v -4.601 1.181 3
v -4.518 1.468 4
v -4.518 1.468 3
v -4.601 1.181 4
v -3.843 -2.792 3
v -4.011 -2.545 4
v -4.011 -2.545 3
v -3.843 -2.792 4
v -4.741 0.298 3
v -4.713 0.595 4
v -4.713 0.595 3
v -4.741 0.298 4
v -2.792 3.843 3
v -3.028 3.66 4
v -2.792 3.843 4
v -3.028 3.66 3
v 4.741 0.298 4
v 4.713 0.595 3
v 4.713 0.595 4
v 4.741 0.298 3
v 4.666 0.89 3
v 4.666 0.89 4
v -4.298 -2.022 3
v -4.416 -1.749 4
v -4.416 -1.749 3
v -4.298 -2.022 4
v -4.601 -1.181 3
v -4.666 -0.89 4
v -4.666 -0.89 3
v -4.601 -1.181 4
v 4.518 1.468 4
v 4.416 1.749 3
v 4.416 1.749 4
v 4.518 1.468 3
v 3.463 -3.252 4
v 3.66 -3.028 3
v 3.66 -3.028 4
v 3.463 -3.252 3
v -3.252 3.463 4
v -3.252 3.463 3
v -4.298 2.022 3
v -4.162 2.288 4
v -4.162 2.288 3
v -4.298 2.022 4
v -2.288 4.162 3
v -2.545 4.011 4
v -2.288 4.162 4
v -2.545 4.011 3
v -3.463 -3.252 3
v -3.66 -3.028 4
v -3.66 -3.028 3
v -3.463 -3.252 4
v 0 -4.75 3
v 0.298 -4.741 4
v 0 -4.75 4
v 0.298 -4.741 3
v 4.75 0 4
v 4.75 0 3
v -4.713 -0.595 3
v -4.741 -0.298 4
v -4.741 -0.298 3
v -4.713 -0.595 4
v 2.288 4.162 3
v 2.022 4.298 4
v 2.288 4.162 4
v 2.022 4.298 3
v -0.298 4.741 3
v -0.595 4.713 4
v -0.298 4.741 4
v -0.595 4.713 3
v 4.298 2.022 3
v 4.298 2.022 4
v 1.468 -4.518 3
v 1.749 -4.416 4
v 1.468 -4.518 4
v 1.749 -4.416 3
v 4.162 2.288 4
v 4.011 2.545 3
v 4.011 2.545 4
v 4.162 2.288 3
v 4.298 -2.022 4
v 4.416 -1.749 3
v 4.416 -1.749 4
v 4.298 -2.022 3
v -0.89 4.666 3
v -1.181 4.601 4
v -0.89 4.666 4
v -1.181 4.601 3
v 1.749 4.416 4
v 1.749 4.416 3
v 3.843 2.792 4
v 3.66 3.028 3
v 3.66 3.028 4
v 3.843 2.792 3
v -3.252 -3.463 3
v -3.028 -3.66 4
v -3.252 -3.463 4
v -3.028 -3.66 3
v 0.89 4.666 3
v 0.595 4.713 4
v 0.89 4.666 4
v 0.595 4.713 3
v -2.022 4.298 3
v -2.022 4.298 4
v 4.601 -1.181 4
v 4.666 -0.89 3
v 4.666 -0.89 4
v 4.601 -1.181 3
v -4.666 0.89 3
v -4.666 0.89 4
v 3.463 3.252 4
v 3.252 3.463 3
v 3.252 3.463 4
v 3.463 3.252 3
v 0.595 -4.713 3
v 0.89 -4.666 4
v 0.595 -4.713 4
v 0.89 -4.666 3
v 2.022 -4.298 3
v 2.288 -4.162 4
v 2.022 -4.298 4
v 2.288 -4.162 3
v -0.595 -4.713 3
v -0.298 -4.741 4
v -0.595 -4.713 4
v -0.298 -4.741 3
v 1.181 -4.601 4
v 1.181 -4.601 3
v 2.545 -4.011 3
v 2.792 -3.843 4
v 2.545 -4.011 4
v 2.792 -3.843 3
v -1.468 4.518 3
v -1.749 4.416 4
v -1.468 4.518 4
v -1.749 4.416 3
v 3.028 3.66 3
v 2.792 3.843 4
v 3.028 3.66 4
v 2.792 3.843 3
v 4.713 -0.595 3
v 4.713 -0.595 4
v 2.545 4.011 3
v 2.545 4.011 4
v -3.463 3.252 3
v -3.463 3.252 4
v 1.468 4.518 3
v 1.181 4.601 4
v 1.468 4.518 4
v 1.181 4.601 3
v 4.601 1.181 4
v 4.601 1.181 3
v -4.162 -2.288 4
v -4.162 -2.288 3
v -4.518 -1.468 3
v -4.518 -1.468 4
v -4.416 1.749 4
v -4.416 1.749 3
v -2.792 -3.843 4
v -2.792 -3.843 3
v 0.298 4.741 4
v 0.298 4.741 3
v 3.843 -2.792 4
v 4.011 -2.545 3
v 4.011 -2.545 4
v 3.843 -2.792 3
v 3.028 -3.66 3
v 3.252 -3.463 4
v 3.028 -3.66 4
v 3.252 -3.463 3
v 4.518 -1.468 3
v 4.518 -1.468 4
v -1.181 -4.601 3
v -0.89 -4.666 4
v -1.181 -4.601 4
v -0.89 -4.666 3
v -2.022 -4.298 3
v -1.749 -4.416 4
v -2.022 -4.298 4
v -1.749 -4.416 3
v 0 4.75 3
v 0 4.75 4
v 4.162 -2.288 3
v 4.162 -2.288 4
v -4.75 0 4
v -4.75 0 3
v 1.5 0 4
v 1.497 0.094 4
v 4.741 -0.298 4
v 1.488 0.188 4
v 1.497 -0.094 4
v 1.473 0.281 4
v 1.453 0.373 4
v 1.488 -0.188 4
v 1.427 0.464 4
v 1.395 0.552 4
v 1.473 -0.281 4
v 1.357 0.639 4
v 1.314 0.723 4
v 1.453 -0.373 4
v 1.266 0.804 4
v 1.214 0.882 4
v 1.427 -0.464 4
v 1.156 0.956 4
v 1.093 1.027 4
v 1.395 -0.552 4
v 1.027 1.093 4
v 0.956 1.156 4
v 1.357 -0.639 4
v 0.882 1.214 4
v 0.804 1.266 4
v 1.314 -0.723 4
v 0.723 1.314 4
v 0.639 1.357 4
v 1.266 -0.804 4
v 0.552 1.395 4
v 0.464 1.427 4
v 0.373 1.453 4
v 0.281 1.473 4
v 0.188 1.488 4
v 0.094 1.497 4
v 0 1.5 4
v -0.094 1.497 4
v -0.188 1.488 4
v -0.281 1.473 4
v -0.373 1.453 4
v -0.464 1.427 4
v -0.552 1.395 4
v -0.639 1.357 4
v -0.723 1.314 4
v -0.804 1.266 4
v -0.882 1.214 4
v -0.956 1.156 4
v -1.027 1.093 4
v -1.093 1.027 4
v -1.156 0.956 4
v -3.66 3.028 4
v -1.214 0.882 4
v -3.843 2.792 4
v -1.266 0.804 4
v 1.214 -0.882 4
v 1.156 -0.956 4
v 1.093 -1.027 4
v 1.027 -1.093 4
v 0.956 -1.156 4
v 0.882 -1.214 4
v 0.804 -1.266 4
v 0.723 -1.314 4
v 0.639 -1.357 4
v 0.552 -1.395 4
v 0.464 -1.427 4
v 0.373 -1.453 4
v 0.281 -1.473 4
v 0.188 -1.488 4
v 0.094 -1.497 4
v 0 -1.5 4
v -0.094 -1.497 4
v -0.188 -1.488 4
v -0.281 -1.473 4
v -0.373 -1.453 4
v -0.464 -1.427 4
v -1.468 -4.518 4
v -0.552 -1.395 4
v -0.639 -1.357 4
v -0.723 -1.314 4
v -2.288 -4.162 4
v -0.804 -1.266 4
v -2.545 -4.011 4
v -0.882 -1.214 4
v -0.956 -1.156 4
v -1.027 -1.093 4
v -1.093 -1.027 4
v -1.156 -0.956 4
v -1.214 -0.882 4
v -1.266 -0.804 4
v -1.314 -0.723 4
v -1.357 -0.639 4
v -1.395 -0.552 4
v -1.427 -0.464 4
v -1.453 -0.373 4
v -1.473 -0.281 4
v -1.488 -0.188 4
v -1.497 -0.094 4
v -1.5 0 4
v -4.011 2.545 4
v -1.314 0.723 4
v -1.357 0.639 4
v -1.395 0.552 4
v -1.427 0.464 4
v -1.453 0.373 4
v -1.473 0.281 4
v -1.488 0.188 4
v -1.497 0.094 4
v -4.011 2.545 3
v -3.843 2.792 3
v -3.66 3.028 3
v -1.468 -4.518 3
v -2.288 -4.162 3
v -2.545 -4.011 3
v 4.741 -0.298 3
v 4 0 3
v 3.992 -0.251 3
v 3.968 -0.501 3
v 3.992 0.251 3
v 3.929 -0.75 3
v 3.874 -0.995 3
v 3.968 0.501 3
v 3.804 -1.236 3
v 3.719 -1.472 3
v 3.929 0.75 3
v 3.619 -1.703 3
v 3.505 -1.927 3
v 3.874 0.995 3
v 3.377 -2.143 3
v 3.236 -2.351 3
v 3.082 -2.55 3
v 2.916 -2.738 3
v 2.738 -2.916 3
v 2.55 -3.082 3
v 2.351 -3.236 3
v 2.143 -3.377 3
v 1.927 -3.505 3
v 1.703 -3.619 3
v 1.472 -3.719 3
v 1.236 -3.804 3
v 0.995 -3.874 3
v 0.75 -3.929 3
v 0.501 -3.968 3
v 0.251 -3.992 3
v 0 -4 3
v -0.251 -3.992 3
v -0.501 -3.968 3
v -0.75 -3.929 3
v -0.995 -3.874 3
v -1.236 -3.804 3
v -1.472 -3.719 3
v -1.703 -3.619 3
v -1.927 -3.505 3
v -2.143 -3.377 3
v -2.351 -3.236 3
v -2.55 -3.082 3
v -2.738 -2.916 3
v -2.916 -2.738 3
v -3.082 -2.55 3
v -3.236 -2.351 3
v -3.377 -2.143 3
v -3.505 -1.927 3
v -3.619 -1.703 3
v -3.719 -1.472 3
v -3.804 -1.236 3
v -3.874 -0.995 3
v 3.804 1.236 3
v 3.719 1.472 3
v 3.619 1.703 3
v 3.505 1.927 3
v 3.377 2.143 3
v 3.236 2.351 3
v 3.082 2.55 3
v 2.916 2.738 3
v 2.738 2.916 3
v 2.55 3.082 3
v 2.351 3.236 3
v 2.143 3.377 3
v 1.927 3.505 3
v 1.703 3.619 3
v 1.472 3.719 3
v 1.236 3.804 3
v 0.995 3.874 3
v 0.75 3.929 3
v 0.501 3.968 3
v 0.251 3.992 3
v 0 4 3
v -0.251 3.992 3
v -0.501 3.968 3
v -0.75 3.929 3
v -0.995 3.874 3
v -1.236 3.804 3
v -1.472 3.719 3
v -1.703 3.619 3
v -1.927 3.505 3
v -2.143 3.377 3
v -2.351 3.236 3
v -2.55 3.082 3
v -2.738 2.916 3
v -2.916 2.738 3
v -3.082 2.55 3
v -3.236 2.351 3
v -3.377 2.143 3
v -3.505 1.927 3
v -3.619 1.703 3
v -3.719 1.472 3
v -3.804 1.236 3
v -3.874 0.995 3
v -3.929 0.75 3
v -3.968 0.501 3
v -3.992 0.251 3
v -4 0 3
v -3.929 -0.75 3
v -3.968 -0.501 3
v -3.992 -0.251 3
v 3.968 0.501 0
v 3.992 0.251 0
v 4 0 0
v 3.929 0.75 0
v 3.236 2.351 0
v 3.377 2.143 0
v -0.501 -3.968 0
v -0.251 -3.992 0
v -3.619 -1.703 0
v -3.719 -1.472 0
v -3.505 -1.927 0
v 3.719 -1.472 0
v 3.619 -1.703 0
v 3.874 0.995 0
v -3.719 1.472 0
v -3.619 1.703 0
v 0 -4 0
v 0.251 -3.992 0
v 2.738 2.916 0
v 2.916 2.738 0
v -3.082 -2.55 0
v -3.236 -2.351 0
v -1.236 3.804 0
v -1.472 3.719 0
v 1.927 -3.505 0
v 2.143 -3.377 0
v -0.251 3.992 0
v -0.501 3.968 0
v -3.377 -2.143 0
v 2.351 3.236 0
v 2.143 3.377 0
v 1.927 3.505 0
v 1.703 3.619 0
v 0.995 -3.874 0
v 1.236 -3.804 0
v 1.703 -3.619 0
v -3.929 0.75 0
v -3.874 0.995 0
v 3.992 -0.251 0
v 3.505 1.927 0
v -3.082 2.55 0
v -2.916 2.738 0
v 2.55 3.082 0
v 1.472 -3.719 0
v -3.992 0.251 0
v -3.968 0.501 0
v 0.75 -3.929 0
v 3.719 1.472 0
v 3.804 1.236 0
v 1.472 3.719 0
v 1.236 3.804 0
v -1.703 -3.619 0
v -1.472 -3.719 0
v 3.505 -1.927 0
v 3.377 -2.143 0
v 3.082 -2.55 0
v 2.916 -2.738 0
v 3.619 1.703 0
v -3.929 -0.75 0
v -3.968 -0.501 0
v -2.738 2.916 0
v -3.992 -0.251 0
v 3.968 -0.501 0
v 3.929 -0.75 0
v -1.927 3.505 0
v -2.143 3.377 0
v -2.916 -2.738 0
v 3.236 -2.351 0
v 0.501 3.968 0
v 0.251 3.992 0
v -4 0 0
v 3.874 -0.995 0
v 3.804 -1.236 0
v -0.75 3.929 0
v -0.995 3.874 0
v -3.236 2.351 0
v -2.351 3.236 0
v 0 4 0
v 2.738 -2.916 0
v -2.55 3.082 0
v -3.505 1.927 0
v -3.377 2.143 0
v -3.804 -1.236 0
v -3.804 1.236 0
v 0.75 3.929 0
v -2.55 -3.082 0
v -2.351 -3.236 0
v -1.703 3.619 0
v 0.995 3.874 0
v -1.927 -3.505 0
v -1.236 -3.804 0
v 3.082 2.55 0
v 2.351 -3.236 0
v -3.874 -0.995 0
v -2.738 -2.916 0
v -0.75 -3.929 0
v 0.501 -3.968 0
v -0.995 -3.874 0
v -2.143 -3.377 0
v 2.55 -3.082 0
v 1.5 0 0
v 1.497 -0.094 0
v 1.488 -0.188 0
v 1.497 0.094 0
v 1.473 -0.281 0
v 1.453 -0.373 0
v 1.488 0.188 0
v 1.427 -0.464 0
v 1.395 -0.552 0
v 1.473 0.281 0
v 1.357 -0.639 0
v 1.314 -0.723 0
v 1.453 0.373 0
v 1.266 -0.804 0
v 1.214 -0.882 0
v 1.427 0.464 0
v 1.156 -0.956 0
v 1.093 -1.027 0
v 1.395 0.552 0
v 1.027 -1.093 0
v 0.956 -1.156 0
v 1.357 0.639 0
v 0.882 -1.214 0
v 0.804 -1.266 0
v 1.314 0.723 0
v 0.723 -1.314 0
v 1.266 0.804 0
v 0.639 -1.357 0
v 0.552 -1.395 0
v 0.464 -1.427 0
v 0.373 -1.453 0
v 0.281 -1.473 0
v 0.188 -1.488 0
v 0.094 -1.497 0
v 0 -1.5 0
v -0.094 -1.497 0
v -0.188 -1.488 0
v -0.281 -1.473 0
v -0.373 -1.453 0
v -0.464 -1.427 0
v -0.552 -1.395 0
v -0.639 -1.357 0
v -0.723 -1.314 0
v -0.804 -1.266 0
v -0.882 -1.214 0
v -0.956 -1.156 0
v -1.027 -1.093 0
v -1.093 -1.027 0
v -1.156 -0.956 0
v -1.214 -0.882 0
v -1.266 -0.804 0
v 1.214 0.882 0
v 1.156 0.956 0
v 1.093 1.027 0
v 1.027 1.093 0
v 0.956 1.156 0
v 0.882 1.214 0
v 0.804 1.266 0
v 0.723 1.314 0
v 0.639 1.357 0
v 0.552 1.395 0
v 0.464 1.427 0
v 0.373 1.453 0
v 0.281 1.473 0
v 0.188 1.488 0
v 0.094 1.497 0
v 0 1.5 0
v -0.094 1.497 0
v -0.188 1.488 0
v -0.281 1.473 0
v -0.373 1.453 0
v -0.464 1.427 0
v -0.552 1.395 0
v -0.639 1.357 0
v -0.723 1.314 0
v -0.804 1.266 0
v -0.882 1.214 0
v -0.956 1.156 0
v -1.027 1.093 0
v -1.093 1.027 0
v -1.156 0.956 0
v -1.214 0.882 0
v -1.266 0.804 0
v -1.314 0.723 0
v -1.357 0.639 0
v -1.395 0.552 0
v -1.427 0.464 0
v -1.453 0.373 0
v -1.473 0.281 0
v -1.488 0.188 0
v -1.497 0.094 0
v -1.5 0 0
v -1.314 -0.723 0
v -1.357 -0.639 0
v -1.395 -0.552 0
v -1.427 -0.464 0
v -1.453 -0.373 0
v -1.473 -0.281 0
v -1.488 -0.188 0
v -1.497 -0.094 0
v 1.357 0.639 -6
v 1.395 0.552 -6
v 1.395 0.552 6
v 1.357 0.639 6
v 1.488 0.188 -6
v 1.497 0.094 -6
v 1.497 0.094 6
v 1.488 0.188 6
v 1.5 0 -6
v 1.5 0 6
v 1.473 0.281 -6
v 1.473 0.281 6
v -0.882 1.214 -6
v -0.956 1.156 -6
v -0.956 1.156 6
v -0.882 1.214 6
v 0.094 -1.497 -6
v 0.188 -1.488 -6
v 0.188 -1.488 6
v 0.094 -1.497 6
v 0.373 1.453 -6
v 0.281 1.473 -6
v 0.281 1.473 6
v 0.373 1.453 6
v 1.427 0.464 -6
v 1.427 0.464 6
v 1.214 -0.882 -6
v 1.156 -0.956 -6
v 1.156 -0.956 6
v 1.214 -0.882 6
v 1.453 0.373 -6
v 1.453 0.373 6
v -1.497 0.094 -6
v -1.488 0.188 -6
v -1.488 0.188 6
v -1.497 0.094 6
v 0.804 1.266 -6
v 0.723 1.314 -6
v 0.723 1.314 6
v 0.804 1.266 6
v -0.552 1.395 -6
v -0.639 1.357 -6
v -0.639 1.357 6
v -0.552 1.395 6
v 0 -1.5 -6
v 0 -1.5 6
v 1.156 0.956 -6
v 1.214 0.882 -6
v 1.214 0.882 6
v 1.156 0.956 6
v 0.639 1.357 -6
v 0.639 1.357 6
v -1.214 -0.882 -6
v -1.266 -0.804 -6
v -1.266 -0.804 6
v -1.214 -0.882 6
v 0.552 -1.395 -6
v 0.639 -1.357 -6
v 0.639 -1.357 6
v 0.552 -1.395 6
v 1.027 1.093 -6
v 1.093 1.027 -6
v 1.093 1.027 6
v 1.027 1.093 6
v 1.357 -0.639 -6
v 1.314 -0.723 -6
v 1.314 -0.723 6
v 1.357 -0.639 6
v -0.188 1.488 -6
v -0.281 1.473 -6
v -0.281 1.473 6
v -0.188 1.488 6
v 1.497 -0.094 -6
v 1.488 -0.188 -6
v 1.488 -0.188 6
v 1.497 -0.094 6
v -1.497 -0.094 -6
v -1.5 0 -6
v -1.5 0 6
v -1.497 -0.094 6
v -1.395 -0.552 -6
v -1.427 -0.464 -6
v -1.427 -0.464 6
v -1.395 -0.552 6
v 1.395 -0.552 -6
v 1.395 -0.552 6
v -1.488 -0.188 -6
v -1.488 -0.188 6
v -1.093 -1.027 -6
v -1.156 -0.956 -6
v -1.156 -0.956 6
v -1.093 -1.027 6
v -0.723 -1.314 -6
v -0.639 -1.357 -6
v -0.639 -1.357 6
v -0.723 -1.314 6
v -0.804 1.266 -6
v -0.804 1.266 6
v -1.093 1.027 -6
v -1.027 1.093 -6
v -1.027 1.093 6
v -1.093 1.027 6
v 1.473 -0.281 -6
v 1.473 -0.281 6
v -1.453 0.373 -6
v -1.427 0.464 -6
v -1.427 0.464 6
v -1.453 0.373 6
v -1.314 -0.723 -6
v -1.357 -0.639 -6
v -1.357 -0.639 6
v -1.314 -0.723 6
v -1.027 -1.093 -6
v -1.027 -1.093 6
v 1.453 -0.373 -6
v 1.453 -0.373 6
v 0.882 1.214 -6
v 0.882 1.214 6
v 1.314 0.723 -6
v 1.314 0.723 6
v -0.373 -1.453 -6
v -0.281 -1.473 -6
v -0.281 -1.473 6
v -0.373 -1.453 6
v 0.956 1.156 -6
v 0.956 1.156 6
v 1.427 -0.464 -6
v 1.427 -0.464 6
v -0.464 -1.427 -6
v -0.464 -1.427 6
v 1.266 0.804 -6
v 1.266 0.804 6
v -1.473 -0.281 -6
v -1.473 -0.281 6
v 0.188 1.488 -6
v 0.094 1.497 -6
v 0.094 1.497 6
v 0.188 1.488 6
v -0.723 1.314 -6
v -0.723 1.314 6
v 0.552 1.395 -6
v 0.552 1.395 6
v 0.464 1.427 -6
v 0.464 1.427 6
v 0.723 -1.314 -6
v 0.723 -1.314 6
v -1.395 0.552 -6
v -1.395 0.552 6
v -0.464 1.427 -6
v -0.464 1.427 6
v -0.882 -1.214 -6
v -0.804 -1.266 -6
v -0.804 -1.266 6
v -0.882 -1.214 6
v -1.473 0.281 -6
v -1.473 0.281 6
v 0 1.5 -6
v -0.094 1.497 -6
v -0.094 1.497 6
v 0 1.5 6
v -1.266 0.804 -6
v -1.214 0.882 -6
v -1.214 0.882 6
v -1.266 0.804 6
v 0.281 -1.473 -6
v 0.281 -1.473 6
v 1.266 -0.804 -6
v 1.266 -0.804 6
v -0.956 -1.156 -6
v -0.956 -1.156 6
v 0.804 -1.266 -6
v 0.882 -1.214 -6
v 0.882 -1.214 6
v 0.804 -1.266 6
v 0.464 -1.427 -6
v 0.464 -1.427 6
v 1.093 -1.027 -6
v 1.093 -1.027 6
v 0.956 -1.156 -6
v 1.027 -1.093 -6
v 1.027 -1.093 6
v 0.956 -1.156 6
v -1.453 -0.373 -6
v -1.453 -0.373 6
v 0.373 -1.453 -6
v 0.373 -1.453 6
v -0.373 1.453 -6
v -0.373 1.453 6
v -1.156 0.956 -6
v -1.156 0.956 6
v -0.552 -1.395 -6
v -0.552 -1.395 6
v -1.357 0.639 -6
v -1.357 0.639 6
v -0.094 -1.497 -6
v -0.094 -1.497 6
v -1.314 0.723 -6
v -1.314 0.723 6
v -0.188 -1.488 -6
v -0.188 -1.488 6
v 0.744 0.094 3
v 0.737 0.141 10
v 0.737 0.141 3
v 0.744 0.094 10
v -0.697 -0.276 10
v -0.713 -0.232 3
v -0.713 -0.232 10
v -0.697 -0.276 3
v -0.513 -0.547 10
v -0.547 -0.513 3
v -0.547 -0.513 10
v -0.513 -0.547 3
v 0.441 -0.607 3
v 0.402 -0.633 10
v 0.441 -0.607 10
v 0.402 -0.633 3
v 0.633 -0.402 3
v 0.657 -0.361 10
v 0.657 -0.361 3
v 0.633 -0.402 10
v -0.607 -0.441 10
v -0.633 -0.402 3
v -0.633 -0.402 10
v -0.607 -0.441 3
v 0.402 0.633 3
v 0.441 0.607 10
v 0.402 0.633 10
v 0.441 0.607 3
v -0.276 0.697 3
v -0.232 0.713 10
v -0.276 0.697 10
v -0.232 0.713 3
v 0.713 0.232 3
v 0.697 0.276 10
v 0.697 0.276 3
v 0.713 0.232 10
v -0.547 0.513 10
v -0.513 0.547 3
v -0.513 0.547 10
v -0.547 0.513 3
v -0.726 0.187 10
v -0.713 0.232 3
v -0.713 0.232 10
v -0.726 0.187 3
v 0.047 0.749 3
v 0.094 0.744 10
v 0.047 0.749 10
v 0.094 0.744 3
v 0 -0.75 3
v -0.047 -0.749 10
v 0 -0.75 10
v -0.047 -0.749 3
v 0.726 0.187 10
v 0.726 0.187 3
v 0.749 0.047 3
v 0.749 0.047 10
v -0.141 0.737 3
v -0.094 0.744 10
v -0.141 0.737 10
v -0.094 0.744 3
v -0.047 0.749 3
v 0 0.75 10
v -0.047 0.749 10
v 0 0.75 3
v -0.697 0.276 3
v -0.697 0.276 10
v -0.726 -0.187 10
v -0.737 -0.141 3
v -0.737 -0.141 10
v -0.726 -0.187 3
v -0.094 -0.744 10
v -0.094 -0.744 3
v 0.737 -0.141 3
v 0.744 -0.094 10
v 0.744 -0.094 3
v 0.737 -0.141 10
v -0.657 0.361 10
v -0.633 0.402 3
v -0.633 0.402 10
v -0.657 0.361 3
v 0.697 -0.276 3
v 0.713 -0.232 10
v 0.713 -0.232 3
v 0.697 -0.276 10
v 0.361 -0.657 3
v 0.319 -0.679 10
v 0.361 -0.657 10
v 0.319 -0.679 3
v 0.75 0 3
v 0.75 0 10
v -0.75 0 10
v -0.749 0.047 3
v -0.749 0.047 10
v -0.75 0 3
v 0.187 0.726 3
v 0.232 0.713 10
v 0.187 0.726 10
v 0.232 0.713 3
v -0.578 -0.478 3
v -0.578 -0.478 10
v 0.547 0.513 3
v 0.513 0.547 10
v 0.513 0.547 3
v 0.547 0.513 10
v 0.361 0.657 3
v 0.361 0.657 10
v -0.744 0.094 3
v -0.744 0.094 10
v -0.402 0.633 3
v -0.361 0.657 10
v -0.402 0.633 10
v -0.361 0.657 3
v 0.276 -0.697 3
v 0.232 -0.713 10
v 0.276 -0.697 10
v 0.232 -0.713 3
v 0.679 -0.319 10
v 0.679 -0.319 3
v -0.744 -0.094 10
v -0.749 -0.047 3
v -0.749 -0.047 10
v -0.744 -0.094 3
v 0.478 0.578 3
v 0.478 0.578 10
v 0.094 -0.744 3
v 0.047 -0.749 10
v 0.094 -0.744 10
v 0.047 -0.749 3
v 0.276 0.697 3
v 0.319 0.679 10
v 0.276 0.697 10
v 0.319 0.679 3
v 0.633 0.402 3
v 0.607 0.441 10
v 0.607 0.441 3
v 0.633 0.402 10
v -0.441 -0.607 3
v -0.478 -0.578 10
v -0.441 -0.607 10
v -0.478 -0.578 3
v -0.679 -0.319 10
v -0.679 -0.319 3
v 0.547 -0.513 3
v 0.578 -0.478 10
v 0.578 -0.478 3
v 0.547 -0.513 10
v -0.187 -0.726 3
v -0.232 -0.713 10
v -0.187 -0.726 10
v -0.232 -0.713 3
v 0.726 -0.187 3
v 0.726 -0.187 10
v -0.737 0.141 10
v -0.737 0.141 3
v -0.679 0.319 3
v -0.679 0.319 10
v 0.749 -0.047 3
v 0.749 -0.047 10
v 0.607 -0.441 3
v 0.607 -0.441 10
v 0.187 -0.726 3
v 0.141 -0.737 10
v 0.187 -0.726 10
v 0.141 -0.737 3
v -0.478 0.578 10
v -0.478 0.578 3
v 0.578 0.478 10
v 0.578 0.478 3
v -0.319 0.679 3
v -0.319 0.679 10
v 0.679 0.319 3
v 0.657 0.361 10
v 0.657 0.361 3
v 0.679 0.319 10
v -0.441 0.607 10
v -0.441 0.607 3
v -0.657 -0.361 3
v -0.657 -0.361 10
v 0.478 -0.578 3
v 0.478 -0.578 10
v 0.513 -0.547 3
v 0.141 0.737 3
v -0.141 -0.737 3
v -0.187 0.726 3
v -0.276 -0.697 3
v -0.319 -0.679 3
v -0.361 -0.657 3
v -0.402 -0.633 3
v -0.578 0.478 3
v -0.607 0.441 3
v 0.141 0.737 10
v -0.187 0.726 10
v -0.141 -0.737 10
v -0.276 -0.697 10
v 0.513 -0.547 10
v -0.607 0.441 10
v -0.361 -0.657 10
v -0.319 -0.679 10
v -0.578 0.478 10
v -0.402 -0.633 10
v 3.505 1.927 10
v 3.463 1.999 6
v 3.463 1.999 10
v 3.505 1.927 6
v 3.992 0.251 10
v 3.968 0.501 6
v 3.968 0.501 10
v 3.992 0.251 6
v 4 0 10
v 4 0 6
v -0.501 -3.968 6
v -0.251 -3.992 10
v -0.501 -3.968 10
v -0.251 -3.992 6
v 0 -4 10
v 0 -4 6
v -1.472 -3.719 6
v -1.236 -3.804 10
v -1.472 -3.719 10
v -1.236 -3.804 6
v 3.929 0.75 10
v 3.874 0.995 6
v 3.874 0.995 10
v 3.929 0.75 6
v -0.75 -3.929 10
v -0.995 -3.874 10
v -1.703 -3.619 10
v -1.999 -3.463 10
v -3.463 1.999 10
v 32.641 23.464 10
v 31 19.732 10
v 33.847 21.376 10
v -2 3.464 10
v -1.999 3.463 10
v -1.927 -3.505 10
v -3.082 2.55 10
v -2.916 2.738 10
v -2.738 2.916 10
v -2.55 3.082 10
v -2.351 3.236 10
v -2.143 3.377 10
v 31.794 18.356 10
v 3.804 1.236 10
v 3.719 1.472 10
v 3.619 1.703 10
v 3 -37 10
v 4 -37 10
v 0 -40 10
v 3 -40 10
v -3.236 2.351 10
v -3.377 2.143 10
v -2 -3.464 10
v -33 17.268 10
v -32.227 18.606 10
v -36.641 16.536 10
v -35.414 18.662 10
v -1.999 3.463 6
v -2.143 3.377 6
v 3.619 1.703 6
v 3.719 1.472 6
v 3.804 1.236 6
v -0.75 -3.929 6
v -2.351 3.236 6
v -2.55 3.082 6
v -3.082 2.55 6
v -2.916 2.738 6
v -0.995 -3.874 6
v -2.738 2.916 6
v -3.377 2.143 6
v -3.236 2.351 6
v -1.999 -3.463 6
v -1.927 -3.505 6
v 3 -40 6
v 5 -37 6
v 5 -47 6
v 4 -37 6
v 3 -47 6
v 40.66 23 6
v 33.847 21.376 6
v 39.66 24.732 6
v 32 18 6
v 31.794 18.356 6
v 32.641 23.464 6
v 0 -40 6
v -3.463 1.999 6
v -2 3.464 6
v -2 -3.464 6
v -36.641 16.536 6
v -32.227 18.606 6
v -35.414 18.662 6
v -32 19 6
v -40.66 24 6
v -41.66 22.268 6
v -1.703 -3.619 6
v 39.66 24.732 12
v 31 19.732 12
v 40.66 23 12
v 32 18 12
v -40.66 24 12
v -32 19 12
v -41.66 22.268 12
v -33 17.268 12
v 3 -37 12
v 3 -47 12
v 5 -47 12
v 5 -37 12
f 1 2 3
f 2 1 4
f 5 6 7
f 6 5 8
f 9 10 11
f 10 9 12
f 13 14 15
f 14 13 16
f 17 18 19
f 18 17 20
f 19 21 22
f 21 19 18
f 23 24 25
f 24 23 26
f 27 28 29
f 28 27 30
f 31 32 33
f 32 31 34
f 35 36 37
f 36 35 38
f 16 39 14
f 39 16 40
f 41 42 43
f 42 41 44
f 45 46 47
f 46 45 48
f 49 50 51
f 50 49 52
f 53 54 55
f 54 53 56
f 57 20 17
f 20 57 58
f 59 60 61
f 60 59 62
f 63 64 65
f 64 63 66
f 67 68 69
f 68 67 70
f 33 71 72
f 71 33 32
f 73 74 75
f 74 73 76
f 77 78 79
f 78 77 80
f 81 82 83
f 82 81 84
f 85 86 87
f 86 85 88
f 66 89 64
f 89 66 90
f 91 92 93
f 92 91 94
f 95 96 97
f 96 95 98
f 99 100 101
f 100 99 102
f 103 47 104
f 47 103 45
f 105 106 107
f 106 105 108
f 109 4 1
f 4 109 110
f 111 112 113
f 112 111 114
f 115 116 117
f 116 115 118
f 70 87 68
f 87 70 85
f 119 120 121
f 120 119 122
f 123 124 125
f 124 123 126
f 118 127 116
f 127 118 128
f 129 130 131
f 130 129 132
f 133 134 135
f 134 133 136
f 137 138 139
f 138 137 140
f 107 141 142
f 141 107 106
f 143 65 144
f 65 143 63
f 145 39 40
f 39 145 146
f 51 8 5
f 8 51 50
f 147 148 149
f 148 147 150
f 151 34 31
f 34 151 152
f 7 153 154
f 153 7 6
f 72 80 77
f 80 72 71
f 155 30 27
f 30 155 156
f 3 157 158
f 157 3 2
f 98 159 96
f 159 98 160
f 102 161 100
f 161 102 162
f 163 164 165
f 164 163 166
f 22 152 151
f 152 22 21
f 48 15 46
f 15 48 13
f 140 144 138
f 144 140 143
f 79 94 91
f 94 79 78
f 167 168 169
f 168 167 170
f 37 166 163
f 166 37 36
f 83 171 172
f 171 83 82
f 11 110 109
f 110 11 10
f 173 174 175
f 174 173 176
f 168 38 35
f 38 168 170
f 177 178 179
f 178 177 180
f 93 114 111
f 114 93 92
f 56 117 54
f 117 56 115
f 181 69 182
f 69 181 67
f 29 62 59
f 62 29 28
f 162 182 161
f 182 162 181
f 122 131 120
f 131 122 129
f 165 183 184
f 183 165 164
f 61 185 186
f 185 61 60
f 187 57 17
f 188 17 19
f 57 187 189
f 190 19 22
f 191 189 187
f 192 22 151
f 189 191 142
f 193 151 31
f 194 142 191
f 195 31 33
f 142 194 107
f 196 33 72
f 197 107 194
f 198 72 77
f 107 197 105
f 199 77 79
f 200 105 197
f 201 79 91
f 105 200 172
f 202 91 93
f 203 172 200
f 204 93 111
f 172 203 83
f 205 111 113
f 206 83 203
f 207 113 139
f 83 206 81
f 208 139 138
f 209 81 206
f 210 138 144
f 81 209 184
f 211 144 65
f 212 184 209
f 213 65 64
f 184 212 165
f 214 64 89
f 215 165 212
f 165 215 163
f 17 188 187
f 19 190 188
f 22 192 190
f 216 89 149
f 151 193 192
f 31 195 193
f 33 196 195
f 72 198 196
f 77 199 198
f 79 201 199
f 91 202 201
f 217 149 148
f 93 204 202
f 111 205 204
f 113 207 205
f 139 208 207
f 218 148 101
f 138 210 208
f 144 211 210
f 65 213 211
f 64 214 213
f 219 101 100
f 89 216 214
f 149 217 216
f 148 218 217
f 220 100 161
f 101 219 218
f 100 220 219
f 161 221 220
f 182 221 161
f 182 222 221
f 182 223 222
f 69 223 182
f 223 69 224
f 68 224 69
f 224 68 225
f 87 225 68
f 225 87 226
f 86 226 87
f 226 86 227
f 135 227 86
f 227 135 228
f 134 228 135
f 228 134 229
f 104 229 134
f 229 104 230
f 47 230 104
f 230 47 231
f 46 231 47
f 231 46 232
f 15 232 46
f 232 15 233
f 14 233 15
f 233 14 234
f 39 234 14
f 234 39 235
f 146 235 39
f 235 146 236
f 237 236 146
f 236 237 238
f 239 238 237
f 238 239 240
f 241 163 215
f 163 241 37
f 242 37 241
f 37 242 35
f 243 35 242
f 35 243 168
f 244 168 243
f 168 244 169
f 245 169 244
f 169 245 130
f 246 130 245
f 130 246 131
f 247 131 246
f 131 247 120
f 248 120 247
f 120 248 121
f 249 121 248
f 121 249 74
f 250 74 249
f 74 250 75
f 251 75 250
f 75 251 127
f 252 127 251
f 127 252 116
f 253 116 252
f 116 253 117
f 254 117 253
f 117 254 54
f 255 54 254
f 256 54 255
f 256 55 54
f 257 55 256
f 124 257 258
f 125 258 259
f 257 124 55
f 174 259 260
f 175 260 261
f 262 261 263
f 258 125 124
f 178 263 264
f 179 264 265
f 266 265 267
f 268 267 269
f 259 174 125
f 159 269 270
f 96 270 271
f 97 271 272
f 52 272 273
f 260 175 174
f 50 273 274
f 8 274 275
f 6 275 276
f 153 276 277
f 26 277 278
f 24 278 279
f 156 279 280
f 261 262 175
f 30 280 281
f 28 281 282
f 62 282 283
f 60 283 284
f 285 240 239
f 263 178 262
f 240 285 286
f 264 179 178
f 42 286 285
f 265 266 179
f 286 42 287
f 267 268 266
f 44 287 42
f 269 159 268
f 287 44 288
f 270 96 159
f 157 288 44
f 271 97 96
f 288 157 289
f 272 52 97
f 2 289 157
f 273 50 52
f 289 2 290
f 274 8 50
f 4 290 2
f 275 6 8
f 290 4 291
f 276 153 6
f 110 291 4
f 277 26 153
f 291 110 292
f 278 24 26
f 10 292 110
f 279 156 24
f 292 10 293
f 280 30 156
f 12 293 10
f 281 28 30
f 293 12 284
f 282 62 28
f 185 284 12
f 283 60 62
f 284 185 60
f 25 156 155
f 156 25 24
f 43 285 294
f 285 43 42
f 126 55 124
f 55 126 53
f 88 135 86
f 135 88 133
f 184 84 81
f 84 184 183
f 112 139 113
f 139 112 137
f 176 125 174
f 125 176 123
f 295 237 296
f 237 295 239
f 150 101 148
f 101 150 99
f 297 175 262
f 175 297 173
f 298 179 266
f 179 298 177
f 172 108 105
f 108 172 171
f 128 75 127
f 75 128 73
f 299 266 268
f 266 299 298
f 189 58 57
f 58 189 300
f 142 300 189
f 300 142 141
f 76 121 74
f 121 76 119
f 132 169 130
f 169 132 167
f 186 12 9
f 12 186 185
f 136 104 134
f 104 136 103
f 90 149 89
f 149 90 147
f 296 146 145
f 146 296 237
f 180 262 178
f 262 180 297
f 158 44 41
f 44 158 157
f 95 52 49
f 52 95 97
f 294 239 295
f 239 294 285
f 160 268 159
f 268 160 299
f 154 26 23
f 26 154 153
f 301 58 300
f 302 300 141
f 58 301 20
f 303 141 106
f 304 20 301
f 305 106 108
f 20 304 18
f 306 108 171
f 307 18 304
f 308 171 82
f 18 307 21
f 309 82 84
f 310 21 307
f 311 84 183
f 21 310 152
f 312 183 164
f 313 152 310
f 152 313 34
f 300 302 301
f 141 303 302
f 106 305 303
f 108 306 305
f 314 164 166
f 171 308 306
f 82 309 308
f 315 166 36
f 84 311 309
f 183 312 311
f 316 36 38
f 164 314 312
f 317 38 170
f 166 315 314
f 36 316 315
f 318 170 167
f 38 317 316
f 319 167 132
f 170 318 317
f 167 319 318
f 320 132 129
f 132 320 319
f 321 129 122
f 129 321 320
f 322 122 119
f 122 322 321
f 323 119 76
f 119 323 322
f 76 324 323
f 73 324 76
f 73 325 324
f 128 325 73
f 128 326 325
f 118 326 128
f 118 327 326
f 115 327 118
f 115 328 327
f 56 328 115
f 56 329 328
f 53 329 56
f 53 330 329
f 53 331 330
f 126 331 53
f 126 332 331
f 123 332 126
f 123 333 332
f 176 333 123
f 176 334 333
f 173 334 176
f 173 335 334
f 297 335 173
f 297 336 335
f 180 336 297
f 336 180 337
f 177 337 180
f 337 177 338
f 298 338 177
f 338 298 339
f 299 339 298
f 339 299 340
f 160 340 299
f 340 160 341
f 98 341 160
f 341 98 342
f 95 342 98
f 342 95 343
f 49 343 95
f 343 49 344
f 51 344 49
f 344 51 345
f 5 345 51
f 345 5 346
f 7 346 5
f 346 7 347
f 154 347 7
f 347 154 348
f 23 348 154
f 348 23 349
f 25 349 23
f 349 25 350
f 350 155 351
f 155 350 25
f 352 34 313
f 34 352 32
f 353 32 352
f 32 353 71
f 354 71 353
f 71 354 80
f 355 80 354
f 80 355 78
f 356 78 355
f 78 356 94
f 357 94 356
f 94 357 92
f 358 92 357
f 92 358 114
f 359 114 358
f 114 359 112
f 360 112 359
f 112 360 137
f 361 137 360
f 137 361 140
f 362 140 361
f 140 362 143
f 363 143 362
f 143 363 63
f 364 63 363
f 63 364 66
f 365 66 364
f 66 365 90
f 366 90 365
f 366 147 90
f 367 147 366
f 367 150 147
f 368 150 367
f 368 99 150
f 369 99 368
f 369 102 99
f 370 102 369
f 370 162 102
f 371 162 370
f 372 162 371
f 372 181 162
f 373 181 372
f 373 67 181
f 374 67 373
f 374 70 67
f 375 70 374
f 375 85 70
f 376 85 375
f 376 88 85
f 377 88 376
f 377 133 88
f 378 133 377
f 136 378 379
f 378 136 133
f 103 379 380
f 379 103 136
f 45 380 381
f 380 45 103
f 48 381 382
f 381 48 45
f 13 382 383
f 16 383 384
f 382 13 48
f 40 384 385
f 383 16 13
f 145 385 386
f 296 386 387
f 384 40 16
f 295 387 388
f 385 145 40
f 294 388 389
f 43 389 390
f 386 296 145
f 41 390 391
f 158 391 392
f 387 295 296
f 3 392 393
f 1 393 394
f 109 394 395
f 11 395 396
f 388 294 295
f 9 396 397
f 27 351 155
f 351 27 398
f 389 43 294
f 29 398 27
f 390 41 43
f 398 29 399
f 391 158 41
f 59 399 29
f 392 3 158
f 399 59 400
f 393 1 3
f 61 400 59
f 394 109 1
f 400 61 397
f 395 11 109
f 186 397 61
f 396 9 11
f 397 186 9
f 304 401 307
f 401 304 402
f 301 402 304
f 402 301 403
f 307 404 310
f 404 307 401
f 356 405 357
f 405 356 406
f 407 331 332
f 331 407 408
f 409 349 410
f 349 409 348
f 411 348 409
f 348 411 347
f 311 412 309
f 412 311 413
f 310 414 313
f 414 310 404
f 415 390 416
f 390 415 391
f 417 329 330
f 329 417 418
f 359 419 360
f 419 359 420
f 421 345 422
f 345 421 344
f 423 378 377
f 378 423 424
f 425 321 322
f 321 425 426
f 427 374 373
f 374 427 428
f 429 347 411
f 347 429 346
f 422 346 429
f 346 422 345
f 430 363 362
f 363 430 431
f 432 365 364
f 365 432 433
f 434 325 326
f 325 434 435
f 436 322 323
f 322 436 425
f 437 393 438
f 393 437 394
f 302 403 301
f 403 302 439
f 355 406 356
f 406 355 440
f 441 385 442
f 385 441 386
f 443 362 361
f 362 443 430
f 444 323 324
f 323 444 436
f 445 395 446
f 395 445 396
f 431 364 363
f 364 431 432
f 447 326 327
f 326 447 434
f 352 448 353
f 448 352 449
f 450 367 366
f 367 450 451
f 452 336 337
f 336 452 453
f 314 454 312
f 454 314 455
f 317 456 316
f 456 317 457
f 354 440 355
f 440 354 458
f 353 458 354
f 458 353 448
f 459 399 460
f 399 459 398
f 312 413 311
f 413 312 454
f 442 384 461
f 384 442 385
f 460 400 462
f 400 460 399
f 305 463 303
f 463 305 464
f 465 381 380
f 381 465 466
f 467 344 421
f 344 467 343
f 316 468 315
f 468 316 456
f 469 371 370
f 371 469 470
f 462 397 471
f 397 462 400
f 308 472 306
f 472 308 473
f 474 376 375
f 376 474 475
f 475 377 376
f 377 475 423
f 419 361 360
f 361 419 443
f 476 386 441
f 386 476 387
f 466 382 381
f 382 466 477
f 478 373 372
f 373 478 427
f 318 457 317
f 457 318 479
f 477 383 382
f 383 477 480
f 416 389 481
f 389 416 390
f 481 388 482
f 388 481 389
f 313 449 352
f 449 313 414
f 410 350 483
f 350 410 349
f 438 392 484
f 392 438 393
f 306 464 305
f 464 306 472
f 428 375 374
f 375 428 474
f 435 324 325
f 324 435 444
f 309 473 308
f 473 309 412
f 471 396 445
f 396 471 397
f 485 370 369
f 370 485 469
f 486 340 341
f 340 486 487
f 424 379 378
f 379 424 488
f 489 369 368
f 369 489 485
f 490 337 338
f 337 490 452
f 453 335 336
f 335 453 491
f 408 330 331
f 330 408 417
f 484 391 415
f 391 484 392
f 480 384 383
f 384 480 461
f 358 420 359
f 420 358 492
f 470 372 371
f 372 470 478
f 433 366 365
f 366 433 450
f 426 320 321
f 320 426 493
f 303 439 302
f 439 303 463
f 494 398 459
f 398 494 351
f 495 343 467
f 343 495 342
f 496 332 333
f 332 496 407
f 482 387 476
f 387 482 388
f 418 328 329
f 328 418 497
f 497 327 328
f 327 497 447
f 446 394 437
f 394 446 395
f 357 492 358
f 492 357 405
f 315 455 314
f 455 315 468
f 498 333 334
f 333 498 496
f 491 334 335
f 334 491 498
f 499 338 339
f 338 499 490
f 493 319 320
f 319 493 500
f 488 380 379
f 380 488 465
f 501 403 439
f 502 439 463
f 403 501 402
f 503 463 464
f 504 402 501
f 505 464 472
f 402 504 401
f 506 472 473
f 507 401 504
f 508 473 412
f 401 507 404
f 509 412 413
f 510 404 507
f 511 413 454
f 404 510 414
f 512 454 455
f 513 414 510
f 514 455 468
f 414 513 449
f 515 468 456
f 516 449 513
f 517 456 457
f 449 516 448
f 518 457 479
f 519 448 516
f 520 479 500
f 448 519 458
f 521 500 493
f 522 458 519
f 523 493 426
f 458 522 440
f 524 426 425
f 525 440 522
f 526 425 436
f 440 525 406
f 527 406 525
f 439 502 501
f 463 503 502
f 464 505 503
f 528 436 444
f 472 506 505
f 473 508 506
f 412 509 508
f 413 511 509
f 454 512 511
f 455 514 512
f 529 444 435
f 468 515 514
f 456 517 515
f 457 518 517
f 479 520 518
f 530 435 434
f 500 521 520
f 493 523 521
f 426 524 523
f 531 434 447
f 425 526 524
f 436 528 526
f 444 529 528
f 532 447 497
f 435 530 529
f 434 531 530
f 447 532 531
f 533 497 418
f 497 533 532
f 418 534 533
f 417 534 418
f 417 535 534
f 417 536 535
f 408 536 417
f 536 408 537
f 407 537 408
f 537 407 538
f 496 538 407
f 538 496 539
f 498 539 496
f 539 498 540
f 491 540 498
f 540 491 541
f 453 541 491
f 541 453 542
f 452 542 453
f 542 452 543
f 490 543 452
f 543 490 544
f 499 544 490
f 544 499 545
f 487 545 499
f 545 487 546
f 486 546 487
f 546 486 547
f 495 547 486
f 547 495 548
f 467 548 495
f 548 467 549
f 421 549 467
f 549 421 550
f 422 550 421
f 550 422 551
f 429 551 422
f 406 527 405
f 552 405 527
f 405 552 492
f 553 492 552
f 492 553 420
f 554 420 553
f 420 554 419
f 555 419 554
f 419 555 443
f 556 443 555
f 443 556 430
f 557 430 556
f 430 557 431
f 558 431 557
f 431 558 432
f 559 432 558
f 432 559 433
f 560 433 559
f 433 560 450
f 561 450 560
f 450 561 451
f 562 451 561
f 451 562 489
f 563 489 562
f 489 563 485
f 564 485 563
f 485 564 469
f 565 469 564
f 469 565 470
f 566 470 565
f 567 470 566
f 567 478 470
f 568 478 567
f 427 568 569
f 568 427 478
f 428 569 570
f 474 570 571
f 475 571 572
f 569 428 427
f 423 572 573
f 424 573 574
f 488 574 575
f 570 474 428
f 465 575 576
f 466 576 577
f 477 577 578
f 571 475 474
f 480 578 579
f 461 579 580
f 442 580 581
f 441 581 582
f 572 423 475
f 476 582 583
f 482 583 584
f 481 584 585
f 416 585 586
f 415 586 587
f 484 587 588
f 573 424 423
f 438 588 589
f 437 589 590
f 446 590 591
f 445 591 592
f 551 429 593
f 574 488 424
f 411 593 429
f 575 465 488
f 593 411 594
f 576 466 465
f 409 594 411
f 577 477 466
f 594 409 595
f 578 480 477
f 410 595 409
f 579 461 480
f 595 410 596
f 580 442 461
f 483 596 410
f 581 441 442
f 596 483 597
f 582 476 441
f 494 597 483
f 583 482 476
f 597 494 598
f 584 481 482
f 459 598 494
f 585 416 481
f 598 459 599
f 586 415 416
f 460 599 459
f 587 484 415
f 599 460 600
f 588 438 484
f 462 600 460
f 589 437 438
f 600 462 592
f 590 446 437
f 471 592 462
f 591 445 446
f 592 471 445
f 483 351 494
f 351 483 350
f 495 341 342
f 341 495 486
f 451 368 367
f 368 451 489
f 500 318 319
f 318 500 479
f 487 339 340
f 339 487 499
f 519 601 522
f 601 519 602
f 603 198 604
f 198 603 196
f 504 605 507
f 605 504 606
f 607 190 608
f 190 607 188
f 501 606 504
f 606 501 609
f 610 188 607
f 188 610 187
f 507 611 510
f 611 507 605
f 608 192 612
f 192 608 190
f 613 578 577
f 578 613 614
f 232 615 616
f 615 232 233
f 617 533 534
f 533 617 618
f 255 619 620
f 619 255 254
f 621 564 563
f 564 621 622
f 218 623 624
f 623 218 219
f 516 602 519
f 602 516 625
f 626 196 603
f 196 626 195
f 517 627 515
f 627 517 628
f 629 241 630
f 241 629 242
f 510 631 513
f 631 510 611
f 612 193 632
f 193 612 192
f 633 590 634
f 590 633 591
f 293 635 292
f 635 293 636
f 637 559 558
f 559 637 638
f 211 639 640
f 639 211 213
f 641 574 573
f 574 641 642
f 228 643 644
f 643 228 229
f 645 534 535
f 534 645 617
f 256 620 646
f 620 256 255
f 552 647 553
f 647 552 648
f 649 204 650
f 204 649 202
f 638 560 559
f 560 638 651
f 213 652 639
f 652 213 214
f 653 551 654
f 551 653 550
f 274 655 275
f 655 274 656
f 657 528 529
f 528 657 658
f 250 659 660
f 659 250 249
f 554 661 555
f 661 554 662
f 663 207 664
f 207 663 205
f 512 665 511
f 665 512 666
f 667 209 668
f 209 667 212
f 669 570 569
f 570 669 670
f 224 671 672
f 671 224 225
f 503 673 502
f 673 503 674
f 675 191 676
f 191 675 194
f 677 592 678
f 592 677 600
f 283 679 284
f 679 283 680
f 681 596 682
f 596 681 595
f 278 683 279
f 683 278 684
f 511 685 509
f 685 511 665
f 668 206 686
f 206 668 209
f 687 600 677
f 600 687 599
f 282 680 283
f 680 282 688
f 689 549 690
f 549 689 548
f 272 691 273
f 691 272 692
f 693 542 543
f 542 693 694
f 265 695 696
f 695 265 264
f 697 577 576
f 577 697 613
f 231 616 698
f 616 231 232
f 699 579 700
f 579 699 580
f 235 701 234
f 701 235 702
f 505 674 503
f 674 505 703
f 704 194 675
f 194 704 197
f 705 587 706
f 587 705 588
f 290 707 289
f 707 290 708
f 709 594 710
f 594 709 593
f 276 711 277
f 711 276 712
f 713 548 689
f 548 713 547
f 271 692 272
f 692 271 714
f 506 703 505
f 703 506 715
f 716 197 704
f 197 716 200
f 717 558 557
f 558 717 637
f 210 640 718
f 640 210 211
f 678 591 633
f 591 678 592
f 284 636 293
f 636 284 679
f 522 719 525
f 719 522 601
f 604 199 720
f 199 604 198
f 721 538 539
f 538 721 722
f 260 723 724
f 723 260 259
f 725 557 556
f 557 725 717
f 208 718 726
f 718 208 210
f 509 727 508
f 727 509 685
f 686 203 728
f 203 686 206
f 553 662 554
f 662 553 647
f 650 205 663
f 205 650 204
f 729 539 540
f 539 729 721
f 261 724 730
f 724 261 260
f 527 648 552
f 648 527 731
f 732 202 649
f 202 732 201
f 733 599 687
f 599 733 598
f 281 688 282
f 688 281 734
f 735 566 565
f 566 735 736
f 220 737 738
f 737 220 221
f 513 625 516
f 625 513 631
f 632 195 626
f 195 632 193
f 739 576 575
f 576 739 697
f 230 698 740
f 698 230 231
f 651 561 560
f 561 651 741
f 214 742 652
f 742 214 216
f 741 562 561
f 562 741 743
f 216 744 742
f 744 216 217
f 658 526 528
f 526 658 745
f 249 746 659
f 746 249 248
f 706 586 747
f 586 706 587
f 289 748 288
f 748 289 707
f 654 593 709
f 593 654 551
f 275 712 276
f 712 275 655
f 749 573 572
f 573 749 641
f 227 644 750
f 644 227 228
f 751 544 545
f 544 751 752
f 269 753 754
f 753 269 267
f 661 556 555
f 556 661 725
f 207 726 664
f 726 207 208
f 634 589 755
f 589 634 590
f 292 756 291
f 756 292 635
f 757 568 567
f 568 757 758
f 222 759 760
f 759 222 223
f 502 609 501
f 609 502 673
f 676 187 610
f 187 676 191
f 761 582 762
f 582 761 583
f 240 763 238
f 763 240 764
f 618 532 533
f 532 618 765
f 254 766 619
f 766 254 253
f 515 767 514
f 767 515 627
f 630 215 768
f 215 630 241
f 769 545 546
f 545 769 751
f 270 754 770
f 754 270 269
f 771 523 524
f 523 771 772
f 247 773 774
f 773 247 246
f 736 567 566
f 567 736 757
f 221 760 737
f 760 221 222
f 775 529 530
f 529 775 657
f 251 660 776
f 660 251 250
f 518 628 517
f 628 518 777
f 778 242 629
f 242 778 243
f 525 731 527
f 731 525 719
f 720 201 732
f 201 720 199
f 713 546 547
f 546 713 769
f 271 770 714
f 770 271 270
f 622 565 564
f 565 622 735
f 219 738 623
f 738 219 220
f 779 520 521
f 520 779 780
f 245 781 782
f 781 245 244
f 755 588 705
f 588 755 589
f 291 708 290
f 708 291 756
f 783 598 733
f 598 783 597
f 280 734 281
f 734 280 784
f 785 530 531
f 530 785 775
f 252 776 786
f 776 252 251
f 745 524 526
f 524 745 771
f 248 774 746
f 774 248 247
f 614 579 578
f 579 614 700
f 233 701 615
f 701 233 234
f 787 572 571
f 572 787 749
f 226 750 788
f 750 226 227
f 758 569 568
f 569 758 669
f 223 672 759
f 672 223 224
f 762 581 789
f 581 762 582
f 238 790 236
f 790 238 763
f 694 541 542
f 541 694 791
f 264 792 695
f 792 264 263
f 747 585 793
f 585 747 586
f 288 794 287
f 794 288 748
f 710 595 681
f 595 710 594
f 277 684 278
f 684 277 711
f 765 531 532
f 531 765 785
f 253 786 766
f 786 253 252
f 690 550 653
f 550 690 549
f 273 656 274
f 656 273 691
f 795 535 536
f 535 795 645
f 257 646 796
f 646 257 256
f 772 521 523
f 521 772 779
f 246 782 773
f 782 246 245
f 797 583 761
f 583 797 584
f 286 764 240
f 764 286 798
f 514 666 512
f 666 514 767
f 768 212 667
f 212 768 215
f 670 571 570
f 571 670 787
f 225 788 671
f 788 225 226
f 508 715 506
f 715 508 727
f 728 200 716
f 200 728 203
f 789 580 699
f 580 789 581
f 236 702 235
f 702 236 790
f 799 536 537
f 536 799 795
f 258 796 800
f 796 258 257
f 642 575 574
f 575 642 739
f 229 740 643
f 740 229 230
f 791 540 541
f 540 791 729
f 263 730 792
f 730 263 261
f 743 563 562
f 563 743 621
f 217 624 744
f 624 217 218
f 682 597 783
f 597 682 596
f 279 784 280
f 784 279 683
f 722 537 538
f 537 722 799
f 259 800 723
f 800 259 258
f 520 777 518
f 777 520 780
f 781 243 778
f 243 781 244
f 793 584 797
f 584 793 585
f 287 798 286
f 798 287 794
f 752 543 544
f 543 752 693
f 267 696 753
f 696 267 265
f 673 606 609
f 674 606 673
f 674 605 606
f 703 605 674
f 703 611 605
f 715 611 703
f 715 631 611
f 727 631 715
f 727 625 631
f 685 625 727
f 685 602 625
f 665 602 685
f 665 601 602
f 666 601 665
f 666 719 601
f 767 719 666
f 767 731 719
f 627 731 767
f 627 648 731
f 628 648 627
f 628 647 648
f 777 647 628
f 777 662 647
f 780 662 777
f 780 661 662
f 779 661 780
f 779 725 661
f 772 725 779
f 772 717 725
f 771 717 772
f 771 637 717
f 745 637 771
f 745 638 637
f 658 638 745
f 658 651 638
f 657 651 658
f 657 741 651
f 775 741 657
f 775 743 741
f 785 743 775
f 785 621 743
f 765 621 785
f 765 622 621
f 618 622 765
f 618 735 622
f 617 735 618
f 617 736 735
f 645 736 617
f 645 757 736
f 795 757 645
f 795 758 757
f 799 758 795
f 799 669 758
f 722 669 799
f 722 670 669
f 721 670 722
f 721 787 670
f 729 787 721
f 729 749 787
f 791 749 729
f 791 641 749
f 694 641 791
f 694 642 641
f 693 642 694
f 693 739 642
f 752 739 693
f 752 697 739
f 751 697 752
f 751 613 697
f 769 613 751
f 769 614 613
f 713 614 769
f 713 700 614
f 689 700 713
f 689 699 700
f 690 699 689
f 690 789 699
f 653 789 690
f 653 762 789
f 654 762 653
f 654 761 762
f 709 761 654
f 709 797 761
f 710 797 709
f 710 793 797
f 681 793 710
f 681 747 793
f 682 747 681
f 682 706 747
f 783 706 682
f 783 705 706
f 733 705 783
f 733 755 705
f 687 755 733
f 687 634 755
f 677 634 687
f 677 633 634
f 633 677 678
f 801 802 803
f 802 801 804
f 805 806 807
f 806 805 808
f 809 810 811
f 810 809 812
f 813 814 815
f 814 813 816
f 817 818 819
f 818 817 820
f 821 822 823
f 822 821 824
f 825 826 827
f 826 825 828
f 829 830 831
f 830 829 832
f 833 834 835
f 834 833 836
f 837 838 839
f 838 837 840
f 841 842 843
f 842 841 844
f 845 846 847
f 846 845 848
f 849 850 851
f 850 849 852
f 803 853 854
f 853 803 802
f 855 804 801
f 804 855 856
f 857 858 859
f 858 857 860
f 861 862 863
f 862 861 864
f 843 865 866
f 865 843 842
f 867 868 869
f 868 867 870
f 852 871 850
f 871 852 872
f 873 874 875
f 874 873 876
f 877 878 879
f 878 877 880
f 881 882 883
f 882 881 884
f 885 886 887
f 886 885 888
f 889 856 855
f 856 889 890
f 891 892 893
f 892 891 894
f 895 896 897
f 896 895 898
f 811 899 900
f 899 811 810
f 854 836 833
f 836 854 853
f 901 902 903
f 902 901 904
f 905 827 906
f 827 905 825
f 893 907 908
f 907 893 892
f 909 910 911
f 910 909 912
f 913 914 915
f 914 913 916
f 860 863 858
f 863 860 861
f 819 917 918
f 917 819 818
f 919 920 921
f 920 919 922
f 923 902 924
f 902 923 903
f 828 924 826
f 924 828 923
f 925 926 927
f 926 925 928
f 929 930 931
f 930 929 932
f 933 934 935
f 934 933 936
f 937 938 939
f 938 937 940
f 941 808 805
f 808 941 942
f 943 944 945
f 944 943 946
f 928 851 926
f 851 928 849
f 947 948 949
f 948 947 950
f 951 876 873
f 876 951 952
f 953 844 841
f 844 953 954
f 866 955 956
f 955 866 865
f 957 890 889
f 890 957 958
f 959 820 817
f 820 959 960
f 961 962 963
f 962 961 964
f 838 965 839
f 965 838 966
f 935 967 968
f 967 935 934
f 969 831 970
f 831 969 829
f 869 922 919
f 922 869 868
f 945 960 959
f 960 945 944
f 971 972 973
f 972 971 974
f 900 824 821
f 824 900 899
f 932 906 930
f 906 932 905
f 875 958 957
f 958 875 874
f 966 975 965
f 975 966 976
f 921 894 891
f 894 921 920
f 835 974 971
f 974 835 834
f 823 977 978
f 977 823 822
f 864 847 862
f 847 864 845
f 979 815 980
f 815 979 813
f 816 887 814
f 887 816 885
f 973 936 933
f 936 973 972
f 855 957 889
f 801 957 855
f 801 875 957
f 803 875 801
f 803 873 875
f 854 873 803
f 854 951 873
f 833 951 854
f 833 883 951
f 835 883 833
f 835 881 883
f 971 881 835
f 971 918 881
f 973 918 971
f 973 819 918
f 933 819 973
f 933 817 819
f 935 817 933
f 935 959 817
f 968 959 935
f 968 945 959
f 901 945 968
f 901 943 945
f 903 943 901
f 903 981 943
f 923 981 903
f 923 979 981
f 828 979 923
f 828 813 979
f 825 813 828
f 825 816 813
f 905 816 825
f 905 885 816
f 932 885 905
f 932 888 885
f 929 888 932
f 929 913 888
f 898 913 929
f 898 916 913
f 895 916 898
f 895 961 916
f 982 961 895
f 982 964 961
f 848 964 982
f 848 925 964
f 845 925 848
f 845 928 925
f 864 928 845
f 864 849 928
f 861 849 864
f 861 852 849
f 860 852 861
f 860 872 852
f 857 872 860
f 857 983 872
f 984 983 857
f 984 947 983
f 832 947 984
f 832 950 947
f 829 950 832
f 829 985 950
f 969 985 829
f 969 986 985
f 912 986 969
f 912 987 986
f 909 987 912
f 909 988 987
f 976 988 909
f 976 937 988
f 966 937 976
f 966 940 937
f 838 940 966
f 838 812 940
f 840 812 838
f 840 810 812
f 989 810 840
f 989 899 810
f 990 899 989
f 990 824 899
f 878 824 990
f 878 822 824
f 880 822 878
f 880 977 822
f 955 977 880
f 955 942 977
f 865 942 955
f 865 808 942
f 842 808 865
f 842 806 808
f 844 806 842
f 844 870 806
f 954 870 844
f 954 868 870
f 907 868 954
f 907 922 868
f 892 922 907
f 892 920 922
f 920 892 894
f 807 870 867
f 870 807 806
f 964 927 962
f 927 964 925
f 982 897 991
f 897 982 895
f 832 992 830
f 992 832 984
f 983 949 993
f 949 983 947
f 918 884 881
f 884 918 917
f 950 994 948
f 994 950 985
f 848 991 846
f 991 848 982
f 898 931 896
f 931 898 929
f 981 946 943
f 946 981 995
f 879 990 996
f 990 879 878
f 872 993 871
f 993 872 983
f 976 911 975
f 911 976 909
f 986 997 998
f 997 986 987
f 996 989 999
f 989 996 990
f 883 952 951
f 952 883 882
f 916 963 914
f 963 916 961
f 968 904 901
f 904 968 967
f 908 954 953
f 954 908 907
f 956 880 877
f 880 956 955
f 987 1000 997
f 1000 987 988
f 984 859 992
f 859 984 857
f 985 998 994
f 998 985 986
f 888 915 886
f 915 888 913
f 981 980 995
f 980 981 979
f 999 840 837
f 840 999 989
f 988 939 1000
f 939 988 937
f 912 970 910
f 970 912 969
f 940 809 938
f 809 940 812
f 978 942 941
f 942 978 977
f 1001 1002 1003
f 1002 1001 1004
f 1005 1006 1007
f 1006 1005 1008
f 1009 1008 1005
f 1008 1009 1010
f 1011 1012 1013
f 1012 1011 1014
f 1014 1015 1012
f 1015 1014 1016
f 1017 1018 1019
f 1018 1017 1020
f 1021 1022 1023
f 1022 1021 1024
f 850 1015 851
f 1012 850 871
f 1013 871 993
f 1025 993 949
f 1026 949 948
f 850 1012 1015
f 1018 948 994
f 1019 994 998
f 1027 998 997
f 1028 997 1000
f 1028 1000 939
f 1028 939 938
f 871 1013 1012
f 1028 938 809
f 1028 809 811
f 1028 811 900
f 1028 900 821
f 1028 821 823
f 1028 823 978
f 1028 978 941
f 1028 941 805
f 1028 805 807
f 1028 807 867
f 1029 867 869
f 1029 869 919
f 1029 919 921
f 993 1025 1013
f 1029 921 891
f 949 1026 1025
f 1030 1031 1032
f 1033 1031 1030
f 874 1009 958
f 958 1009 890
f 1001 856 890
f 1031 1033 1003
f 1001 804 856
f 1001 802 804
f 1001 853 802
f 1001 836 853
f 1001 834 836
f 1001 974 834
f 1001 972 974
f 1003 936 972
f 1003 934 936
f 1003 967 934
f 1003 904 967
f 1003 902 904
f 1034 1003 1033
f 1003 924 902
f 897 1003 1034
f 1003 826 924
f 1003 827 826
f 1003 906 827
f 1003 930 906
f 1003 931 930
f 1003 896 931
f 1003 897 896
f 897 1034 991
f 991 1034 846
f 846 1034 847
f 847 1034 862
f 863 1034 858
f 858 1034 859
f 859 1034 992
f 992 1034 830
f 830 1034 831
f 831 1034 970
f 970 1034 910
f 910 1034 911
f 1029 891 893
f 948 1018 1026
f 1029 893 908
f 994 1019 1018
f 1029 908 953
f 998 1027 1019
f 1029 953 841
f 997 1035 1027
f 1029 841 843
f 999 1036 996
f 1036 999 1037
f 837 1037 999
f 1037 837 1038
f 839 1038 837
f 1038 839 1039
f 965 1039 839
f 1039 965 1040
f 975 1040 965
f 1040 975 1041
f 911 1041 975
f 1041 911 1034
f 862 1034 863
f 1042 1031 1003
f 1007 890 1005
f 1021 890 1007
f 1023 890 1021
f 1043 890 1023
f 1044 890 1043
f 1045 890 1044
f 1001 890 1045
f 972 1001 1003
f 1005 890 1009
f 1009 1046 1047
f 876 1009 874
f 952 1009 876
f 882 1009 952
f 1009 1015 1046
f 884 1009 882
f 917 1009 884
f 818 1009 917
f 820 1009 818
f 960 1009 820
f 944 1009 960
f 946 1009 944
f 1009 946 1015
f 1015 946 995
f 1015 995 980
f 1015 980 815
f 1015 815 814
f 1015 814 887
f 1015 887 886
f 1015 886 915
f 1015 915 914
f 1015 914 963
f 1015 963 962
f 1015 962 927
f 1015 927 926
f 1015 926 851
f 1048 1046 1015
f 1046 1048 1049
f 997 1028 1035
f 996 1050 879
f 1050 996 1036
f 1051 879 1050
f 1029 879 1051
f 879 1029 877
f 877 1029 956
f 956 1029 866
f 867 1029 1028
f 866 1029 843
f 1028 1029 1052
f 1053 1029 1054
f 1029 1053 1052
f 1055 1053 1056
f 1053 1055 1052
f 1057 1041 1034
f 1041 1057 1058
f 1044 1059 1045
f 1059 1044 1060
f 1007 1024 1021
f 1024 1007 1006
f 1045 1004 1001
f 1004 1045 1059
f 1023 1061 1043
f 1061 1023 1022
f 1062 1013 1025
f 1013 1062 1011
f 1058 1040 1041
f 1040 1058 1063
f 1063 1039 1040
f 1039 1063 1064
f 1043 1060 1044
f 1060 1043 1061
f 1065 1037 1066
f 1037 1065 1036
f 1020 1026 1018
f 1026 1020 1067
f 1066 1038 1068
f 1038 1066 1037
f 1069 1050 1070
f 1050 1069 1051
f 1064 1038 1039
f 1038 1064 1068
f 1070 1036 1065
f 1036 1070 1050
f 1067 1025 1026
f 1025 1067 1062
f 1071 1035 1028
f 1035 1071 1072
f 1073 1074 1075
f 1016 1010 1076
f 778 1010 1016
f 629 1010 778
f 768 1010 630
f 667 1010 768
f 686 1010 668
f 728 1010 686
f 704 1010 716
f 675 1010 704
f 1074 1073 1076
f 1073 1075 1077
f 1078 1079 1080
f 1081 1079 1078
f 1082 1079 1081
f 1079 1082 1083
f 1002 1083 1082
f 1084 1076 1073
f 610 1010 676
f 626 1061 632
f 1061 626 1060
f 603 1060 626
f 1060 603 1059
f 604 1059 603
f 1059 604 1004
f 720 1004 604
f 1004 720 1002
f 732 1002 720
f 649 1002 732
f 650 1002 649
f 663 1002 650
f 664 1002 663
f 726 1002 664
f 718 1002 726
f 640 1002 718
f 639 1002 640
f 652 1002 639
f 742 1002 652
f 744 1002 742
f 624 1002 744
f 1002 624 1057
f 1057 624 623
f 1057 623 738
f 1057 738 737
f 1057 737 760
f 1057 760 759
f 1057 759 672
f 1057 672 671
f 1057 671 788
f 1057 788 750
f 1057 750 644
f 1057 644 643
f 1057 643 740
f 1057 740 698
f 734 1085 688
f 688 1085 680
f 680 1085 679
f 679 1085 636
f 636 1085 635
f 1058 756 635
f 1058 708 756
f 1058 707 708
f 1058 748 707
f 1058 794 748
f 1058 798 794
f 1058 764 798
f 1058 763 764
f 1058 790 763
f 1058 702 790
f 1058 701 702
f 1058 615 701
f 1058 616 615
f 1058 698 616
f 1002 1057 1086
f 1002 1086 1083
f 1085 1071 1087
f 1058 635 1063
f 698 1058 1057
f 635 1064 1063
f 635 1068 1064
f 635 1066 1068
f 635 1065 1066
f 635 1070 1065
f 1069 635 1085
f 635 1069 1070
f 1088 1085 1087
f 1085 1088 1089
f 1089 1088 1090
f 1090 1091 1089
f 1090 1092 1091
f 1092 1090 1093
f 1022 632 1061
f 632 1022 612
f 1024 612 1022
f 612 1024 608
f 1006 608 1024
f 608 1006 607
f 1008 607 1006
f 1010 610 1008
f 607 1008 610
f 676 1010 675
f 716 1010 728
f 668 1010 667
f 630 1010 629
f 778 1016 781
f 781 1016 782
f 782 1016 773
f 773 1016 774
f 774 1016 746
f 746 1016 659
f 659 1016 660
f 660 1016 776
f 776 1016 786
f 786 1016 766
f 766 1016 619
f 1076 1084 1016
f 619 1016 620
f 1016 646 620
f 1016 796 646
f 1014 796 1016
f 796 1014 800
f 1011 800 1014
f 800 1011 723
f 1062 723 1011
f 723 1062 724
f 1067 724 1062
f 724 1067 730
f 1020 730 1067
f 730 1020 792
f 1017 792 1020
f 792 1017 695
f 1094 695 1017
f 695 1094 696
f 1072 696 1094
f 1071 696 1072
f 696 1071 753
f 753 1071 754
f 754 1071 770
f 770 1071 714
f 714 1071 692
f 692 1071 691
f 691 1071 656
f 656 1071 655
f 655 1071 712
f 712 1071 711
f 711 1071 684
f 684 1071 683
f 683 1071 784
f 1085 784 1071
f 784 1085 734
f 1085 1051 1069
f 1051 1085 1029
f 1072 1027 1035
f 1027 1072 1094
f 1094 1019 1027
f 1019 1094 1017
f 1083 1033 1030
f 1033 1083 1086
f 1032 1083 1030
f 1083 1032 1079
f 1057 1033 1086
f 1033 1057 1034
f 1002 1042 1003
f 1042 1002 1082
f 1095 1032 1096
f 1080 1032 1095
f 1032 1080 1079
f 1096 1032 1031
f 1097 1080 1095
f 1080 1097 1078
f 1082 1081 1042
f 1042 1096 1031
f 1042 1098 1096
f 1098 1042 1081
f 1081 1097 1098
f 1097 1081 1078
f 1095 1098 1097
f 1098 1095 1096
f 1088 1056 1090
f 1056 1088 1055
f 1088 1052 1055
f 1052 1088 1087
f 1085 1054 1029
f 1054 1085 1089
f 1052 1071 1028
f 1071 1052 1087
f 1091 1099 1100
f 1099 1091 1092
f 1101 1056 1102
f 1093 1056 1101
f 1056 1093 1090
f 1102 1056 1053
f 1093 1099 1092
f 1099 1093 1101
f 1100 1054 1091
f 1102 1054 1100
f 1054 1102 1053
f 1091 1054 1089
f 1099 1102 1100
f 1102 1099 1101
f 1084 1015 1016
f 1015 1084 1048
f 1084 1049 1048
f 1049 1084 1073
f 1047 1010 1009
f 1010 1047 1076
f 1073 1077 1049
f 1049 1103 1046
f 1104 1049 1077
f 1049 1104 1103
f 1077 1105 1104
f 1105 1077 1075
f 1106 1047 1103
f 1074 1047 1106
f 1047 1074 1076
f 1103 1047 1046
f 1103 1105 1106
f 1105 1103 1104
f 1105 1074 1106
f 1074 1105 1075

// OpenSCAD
$fn=100;
Bearing();
Shaft();


difference(){
    union(){
        translate([0,0,6]) cylinder(h=4, d=8);
        translate([+0,+0,6])rotate ([90,0,120]) cube ([4,4,40]);
        translate([+32,+18,6])rotate ([90,0,120]) cube ([2,6,10]);
        translate([+0,+0,6])rotate ([90,0,240]) cube ([4,4,40]);
        translate([-32,+19,6])rotate ([90,0,240]) cube ([2,6,10]);
        translate([+0,+0,6])rotate ([90,0,360]) cube ([4,4,40]);
        translate([+3,-37,6])rotate ([90,0,360]) cube ([2,6,10]);
    }
    translate([0,0,3]) cylinder(h=8, d=1.5);
}


module Shaft(){
    difference(){
    translate([0,0,-6]) cylinder(h=15, d=3);
    translate([0,0,3]) cylinder(h=8, d=1.5);
    }
}

module Bearing(){

    difference(){
        union(){
            translate([0,0,3]) cylinder(h=1, d=9.5);
            cylinder(h=3, d=8);
        }
        translate([0,0,-.5])cylinder(h=6, d=3);
    }
}
